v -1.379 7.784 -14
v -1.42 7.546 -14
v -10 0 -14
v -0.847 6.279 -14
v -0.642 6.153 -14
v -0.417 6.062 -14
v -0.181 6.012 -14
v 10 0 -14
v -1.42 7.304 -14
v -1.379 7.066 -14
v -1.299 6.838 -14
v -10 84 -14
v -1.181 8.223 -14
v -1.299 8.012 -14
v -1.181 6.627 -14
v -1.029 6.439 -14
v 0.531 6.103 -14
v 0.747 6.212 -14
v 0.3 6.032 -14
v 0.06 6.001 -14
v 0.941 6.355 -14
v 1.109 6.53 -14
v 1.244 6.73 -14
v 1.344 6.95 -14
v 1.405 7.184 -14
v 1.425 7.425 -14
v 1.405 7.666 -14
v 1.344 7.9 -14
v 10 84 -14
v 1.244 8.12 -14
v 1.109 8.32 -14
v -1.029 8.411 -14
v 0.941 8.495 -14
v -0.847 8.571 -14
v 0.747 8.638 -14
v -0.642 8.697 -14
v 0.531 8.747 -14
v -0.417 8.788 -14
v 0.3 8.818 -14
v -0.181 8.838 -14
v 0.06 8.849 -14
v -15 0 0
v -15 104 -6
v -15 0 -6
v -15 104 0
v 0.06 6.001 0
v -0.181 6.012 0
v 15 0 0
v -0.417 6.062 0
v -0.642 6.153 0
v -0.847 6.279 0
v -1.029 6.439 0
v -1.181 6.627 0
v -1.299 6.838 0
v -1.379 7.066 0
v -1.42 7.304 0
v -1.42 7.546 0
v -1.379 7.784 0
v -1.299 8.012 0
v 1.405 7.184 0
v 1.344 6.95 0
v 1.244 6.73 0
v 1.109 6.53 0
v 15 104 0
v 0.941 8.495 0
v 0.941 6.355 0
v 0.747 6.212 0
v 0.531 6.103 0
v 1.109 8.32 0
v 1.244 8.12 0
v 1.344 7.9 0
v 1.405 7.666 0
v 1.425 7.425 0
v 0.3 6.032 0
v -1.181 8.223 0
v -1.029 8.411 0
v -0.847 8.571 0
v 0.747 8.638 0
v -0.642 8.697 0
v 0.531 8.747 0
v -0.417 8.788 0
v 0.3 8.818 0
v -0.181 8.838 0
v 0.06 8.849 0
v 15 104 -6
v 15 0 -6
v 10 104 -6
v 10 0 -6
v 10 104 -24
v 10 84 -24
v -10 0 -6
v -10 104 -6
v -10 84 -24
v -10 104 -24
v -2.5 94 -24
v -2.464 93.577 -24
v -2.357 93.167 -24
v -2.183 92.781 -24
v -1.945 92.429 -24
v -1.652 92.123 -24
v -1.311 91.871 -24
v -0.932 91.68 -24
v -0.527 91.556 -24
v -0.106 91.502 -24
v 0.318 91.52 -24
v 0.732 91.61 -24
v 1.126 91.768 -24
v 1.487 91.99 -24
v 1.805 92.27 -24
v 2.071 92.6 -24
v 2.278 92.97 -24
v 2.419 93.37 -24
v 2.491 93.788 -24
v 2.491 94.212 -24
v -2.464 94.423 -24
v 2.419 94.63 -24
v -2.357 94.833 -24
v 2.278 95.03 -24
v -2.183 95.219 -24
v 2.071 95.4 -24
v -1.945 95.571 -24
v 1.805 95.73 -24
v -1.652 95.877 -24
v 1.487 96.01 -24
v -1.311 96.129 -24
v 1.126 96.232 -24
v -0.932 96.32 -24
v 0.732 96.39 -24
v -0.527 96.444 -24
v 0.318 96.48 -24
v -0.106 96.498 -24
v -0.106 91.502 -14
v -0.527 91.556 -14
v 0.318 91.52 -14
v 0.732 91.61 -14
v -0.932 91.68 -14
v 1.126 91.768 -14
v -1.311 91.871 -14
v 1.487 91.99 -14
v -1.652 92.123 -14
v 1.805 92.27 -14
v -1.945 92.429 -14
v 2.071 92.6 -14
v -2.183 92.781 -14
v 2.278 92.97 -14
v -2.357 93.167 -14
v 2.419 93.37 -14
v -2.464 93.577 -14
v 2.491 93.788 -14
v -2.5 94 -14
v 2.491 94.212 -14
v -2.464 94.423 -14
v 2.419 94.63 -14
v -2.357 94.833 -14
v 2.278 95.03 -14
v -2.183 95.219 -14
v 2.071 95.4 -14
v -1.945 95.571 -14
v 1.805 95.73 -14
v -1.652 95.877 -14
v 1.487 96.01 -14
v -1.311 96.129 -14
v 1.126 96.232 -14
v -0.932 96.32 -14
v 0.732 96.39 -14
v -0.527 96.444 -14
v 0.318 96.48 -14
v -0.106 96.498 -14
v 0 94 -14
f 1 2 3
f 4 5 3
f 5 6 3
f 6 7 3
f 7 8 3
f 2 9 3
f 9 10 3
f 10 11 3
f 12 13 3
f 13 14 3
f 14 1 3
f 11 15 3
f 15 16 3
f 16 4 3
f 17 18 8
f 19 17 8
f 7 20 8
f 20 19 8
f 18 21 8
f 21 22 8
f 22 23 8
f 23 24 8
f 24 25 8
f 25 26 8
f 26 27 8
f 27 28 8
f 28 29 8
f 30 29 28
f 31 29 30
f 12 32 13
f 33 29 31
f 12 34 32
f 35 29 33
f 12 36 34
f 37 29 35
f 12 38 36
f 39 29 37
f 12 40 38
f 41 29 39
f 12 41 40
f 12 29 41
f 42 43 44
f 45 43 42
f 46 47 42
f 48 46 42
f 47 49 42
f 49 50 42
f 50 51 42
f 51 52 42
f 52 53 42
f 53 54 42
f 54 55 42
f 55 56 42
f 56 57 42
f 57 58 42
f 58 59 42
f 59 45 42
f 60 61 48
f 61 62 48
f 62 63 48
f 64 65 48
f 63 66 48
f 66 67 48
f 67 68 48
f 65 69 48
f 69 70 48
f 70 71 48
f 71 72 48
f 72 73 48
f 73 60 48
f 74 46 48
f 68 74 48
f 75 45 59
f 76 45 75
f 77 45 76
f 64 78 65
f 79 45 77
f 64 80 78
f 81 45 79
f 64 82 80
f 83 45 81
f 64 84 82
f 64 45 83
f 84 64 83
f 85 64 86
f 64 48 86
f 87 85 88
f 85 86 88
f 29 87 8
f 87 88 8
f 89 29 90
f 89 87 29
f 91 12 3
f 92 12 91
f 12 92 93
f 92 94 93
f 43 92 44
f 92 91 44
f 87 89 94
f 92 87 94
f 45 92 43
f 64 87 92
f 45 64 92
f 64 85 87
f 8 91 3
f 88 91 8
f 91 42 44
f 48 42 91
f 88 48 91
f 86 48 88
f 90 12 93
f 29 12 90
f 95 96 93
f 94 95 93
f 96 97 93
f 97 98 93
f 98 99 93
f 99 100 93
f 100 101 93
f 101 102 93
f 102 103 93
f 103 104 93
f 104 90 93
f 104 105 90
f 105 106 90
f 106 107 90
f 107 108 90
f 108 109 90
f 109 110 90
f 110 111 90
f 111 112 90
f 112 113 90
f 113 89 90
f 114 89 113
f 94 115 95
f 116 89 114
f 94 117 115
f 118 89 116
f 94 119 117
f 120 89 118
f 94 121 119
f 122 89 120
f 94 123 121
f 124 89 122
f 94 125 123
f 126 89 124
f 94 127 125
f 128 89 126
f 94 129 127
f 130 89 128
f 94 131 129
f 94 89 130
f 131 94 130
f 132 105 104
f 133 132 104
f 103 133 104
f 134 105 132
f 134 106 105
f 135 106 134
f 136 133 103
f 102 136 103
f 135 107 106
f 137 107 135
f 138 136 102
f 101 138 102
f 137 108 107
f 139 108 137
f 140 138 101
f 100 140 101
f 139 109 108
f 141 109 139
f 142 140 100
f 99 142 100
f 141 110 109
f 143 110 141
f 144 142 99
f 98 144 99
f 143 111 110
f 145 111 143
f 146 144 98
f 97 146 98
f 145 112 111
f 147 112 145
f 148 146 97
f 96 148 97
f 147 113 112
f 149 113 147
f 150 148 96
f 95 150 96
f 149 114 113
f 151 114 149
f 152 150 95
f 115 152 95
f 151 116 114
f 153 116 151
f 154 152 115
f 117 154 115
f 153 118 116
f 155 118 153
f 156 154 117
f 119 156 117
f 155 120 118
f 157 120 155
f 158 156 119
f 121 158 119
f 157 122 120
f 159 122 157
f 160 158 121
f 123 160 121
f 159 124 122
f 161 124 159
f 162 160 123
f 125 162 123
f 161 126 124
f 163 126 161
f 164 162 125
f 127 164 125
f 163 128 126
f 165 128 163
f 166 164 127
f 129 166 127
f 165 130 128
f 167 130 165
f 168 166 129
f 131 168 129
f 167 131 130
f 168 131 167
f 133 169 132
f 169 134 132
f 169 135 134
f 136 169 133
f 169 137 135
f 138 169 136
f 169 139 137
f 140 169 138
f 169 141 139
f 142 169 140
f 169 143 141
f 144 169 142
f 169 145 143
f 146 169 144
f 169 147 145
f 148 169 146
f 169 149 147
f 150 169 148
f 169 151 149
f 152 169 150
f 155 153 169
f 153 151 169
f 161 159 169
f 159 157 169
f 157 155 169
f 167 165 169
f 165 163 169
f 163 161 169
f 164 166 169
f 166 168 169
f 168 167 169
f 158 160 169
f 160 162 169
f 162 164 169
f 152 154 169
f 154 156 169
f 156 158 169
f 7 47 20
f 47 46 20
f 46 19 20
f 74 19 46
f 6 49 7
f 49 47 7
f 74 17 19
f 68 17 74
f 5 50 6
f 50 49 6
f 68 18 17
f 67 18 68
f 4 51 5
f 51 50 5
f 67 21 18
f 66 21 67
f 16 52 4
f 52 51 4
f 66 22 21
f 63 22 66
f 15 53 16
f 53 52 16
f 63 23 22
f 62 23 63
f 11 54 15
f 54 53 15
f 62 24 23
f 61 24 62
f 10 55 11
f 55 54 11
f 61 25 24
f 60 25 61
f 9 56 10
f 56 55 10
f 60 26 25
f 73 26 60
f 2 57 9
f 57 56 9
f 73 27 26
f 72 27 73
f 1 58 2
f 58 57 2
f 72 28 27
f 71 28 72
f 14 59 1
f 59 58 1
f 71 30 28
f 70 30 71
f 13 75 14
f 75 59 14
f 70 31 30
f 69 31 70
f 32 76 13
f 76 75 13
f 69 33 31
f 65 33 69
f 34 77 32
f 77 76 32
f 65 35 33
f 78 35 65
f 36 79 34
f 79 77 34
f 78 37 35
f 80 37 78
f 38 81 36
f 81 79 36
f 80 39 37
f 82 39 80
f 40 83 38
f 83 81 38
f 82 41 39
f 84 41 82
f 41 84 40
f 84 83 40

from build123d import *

# Parameters (mm, degrees)
DODANIE_WYCI_GNI_CIE1_DEPTH = 104
SZKIC2_W                    = 20
SZKIC2_H                    = 20
DODANIE_WYCI_GNI_CIE2_DEPTH = 10
SZKIC3_R                    = 2.5
WYTNIJ_WYCI_GNI_CIE1_DEPTH  = 10
SZKIC4_R                    = 1.425
WYTNIJ_WYCI_GNI_CIE2_DEPTH  = 108.782187768


with BuildPart() as part:
    # Szkic1 → Dodanie-wyciągnięcie1 (new body)
    with BuildSketch(Plane(origin=(0, 0, 0), x_dir=(1, 0, 0), z_dir=(0, 1, 0))):
        Polygon((-15, 0), (15, 0), (15, 6), (10, 6), (10, 14), (-10, 14), (-10, 6), (-15, 6), align=None)
    extrude(amount=DODANIE_WYCI_GNI_CIE1_DEPTH)

    # Szkic2 → Dodanie-wyciągnięcie2 (add)
    with BuildSketch(Plane(origin=(0, 0, -14), x_dir=(-1, 0, 0), z_dir=(0, 0, -1))):
        with Locations((0, 94)):
            Rectangle(SZKIC2_W, SZKIC2_H)
    extrude(amount=DODANIE_WYCI_GNI_CIE2_DEPTH)

    # Szkic3 → Wytnij-wyciągnięcie1 (cut)
    with BuildSketch(Plane(origin=(0, 0, -24), x_dir=(-1, 0, 0), z_dir=(0, 0, -1))):
        with Locations((0, 94)):
            Circle(SZKIC3_R)
    extrude(amount=-WYTNIJ_WYCI_GNI_CIE1_DEPTH, mode=Mode.SUBTRACT)

    # Szkic4 → Wytnij-wyciągnięcie2 (cut, through all)
    with BuildSketch(Plane.XY):
        with Locations((0, 7.425)):
            Circle(SZKIC4_R)
    extrude(amount=-WYTNIJ_WYCI_GNI_CIE2_DEPTH, mode=Mode.SUBTRACT)


solid = part.part
